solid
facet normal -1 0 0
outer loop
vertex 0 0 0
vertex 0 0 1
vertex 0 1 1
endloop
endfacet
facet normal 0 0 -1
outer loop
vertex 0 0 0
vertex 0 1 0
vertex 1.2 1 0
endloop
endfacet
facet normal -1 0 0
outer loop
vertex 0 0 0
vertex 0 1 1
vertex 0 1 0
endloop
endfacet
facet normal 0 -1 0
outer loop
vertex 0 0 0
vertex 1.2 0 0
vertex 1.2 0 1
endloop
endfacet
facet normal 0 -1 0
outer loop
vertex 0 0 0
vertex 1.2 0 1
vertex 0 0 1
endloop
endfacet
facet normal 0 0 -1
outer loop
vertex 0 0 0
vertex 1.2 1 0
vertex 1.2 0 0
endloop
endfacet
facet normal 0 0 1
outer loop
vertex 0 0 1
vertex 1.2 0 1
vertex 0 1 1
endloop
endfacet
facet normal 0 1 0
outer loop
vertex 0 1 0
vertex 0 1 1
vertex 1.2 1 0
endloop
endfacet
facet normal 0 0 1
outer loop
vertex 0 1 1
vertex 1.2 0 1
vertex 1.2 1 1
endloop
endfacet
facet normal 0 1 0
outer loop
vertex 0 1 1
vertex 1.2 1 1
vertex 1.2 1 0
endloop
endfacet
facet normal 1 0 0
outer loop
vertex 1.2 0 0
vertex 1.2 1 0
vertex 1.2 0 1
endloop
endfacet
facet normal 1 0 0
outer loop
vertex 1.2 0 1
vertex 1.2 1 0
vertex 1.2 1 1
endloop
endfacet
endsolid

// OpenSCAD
/* Warning, this is a very basic generator with a lot of approximation 
input data : [CDFP, E9C, 1.2x1.0mm, 4, , A, C04-25525A]
generated by com.zoubworld.electronics.cad.model3d.Basic
Date : Sun Feb 15 10:50:49 CET 2026
*/

//body
color("black")
translate([0,0,0])
cube([1.2,1.0,1.0], center=false);
